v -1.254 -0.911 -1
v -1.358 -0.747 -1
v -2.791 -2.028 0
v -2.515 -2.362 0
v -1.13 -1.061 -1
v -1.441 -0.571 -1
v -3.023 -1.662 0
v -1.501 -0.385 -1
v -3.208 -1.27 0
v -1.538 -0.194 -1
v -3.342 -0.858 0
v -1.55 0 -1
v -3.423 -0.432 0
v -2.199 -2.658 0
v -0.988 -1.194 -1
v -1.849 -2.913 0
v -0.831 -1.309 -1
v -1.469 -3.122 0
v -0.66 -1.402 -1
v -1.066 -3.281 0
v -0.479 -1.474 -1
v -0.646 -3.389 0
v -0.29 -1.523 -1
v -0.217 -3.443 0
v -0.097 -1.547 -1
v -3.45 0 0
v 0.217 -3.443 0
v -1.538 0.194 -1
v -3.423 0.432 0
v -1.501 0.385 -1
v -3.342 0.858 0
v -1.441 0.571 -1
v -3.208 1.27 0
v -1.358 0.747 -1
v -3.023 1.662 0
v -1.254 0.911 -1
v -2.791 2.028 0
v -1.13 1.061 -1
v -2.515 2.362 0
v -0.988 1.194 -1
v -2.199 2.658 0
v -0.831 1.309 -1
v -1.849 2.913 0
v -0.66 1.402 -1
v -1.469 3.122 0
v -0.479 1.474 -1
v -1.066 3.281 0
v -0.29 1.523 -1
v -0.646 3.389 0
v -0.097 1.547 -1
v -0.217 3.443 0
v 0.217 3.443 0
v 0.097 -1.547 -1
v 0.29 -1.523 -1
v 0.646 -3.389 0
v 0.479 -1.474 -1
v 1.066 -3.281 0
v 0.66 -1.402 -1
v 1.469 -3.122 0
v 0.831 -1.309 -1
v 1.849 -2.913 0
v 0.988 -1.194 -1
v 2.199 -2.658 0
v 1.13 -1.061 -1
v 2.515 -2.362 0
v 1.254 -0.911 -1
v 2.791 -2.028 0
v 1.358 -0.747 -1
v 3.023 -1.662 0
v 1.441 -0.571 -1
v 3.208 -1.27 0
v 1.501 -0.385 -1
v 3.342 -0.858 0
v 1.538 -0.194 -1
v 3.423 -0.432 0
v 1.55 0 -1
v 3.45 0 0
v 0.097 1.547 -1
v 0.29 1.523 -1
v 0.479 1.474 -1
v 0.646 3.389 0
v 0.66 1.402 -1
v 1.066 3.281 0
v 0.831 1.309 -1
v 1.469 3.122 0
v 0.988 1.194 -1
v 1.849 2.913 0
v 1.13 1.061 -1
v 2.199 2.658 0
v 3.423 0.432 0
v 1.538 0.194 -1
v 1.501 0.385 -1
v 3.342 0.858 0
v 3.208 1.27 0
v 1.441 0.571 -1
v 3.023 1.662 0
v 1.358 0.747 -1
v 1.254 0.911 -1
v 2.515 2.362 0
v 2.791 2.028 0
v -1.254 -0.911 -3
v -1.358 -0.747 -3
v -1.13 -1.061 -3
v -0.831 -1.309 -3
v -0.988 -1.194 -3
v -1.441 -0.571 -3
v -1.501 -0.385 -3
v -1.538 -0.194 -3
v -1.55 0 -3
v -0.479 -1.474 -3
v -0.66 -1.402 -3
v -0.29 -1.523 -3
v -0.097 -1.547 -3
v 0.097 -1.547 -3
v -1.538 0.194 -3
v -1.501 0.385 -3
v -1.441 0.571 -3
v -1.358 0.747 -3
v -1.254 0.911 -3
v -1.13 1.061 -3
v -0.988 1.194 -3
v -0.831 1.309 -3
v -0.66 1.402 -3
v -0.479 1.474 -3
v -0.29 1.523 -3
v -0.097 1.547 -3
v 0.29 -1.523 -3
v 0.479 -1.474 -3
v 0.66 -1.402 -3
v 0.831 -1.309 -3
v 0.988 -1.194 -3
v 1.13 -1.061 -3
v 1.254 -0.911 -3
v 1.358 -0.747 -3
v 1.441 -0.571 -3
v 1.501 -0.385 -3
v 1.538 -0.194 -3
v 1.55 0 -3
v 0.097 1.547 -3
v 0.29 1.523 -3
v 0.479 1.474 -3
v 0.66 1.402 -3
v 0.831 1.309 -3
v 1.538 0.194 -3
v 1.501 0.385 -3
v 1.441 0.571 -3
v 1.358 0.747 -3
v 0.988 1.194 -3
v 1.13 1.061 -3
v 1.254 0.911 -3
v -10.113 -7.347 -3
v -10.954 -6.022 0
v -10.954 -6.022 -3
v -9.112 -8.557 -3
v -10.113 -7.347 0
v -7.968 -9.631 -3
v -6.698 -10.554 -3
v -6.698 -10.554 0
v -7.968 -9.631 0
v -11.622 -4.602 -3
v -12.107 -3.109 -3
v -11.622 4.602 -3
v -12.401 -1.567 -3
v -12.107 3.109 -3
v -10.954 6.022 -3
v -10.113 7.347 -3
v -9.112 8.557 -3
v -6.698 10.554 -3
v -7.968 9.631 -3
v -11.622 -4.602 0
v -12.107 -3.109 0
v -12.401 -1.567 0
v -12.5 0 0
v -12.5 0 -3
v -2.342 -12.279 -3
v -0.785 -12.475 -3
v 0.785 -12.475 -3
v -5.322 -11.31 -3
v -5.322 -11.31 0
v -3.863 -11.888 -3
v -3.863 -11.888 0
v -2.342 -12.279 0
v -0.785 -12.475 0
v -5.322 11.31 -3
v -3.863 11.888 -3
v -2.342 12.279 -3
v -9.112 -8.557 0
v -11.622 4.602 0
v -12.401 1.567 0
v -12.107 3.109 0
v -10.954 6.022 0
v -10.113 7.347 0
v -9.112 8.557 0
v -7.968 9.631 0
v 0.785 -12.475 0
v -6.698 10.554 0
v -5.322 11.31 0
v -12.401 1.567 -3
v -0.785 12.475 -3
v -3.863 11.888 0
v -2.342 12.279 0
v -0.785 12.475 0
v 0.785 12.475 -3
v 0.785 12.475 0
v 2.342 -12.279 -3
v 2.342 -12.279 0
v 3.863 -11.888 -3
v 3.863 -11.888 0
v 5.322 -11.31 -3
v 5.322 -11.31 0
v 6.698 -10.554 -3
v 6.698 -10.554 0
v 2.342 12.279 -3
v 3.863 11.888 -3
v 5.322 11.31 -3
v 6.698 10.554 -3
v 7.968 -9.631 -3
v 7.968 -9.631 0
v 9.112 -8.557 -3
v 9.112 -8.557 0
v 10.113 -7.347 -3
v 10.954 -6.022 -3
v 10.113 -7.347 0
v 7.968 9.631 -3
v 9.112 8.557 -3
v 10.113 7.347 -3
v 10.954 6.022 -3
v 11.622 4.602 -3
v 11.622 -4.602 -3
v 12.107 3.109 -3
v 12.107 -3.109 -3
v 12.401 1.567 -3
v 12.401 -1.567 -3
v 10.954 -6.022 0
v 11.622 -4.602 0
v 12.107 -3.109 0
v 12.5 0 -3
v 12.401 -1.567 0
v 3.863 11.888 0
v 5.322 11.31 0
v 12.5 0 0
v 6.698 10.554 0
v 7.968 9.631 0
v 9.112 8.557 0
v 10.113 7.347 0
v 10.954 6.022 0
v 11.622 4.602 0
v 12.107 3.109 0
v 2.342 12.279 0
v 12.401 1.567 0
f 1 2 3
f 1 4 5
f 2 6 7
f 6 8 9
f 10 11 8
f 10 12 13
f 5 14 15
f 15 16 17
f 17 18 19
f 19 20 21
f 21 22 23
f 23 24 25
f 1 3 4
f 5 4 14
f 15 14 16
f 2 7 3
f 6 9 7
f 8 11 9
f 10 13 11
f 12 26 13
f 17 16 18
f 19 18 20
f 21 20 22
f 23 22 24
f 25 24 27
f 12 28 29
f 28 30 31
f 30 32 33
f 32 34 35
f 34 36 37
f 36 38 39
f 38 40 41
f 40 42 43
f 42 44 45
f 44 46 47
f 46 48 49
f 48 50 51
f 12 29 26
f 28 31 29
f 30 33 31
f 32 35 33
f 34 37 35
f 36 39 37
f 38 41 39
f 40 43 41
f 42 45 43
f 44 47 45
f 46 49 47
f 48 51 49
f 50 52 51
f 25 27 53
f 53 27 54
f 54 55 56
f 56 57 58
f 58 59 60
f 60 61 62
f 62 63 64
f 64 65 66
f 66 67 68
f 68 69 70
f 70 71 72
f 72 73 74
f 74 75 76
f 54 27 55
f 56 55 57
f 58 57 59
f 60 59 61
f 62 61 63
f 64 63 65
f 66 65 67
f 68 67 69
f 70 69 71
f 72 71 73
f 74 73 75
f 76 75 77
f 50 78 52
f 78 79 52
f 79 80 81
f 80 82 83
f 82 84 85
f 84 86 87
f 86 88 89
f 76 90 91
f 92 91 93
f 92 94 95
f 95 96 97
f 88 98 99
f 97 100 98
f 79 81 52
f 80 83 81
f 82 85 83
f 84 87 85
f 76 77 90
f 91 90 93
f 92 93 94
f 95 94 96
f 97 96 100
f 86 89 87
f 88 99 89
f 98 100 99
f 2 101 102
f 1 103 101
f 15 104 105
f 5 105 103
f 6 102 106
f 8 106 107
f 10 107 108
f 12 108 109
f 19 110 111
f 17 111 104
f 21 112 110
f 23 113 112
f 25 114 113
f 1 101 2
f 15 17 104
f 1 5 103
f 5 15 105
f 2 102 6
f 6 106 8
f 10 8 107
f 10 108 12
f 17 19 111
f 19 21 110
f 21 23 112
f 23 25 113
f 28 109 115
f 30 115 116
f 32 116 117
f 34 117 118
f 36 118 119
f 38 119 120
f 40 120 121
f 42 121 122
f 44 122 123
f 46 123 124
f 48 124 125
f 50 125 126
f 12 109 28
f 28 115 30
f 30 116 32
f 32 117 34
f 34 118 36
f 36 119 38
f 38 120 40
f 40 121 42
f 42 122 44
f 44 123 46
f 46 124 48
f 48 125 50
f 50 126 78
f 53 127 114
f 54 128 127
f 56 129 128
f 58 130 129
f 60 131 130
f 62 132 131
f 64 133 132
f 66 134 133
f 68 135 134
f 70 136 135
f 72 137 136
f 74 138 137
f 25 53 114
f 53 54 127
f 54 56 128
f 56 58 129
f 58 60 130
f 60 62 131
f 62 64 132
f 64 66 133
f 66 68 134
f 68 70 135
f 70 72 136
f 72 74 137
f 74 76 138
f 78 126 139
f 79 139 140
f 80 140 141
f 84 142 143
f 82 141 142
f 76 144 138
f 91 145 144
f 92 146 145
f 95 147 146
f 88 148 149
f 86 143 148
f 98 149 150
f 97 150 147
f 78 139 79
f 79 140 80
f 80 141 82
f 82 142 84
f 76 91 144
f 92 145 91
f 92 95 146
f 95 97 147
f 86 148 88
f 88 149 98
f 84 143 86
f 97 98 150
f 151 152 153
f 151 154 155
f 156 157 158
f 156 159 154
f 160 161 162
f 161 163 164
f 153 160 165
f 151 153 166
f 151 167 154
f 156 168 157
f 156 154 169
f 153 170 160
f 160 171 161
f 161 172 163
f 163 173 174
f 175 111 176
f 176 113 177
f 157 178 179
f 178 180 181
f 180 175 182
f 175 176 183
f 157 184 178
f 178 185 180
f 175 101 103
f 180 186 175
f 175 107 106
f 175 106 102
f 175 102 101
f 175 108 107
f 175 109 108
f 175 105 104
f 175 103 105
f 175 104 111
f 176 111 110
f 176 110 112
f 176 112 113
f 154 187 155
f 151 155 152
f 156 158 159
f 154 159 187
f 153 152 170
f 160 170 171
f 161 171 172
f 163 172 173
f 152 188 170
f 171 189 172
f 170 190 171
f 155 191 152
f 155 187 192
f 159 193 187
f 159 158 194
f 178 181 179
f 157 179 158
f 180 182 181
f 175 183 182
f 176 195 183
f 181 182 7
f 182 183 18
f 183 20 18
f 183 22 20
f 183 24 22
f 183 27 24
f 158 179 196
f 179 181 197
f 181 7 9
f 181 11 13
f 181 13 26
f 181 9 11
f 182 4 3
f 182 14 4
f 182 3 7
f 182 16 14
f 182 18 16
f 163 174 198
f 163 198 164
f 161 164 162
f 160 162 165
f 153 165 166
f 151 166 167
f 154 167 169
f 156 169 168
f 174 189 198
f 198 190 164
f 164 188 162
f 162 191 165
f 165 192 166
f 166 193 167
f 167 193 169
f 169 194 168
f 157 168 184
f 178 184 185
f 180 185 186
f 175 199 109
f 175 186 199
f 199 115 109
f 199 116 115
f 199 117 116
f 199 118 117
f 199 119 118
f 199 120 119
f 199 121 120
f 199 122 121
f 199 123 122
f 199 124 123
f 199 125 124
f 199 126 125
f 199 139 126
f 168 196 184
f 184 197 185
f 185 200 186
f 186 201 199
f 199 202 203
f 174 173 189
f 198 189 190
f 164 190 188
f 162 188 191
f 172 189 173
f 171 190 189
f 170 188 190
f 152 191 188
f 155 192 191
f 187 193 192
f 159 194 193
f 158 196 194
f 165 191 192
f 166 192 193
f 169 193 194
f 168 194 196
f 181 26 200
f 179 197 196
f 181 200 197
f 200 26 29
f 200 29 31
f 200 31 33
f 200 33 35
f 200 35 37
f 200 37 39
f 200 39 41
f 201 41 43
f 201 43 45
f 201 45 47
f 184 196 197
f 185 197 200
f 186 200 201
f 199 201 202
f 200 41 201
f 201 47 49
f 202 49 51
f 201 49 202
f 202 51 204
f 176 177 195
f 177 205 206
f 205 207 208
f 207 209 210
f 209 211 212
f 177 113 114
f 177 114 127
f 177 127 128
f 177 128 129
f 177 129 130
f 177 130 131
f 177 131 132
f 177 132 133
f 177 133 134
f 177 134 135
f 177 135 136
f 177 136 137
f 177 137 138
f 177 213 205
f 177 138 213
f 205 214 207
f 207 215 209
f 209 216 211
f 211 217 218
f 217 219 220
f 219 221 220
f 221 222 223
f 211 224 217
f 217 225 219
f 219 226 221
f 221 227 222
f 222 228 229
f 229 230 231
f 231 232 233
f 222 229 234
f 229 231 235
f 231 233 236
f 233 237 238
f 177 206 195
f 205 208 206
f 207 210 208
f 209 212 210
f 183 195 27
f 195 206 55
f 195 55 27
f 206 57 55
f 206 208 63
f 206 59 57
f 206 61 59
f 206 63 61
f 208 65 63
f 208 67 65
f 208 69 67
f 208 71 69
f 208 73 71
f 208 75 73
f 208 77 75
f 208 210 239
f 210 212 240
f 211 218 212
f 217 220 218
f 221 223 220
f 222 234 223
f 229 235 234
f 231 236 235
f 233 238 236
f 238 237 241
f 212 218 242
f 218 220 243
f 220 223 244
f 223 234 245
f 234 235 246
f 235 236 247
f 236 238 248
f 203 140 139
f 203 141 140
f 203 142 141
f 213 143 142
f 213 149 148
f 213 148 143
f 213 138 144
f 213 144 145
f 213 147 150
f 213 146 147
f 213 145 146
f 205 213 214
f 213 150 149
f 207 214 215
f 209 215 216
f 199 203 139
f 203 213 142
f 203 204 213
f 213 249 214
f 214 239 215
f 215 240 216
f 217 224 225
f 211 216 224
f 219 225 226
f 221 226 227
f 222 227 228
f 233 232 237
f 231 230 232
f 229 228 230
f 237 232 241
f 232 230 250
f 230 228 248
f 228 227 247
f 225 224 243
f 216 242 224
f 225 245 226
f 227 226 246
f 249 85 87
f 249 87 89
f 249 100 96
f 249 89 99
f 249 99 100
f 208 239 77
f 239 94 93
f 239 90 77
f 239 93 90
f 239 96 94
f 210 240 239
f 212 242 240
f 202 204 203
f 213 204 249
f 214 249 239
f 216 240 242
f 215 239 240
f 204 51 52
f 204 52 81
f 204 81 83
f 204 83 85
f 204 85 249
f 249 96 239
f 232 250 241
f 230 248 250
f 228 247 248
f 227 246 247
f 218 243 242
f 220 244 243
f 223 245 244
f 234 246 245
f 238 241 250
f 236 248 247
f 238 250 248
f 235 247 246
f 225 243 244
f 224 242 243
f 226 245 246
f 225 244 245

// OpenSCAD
$fn = 50;

difference() {
	union() {
		translate(v = [0, 0, -3.0]) {
			cylinder(h = 3, r = 12.5);
		}
	}
	union() {
		translate(v = [0, 0, 0]) {
			rotate(a = [0, 0, 0]) {
				difference() {
					union() {
						translate(v = [0, 0, -6.0]) {
							cylinder(h = 6, r = 1.25);
						}
						translate(v = [0, 0, -1.0]) {
							cylinder(h = 1.0, r1 = 1.55, r2 = 3.45);
						}
						translate(v = [0, 0, -6.0]) {
							cylinder(h = 6, r = 1.55);
						}
						translate(v = [0, 0, -6.0]) {
							cylinder(h = 6, r = 1.25);
						}
					}
					union();
				}
			}
		}
	}
}
